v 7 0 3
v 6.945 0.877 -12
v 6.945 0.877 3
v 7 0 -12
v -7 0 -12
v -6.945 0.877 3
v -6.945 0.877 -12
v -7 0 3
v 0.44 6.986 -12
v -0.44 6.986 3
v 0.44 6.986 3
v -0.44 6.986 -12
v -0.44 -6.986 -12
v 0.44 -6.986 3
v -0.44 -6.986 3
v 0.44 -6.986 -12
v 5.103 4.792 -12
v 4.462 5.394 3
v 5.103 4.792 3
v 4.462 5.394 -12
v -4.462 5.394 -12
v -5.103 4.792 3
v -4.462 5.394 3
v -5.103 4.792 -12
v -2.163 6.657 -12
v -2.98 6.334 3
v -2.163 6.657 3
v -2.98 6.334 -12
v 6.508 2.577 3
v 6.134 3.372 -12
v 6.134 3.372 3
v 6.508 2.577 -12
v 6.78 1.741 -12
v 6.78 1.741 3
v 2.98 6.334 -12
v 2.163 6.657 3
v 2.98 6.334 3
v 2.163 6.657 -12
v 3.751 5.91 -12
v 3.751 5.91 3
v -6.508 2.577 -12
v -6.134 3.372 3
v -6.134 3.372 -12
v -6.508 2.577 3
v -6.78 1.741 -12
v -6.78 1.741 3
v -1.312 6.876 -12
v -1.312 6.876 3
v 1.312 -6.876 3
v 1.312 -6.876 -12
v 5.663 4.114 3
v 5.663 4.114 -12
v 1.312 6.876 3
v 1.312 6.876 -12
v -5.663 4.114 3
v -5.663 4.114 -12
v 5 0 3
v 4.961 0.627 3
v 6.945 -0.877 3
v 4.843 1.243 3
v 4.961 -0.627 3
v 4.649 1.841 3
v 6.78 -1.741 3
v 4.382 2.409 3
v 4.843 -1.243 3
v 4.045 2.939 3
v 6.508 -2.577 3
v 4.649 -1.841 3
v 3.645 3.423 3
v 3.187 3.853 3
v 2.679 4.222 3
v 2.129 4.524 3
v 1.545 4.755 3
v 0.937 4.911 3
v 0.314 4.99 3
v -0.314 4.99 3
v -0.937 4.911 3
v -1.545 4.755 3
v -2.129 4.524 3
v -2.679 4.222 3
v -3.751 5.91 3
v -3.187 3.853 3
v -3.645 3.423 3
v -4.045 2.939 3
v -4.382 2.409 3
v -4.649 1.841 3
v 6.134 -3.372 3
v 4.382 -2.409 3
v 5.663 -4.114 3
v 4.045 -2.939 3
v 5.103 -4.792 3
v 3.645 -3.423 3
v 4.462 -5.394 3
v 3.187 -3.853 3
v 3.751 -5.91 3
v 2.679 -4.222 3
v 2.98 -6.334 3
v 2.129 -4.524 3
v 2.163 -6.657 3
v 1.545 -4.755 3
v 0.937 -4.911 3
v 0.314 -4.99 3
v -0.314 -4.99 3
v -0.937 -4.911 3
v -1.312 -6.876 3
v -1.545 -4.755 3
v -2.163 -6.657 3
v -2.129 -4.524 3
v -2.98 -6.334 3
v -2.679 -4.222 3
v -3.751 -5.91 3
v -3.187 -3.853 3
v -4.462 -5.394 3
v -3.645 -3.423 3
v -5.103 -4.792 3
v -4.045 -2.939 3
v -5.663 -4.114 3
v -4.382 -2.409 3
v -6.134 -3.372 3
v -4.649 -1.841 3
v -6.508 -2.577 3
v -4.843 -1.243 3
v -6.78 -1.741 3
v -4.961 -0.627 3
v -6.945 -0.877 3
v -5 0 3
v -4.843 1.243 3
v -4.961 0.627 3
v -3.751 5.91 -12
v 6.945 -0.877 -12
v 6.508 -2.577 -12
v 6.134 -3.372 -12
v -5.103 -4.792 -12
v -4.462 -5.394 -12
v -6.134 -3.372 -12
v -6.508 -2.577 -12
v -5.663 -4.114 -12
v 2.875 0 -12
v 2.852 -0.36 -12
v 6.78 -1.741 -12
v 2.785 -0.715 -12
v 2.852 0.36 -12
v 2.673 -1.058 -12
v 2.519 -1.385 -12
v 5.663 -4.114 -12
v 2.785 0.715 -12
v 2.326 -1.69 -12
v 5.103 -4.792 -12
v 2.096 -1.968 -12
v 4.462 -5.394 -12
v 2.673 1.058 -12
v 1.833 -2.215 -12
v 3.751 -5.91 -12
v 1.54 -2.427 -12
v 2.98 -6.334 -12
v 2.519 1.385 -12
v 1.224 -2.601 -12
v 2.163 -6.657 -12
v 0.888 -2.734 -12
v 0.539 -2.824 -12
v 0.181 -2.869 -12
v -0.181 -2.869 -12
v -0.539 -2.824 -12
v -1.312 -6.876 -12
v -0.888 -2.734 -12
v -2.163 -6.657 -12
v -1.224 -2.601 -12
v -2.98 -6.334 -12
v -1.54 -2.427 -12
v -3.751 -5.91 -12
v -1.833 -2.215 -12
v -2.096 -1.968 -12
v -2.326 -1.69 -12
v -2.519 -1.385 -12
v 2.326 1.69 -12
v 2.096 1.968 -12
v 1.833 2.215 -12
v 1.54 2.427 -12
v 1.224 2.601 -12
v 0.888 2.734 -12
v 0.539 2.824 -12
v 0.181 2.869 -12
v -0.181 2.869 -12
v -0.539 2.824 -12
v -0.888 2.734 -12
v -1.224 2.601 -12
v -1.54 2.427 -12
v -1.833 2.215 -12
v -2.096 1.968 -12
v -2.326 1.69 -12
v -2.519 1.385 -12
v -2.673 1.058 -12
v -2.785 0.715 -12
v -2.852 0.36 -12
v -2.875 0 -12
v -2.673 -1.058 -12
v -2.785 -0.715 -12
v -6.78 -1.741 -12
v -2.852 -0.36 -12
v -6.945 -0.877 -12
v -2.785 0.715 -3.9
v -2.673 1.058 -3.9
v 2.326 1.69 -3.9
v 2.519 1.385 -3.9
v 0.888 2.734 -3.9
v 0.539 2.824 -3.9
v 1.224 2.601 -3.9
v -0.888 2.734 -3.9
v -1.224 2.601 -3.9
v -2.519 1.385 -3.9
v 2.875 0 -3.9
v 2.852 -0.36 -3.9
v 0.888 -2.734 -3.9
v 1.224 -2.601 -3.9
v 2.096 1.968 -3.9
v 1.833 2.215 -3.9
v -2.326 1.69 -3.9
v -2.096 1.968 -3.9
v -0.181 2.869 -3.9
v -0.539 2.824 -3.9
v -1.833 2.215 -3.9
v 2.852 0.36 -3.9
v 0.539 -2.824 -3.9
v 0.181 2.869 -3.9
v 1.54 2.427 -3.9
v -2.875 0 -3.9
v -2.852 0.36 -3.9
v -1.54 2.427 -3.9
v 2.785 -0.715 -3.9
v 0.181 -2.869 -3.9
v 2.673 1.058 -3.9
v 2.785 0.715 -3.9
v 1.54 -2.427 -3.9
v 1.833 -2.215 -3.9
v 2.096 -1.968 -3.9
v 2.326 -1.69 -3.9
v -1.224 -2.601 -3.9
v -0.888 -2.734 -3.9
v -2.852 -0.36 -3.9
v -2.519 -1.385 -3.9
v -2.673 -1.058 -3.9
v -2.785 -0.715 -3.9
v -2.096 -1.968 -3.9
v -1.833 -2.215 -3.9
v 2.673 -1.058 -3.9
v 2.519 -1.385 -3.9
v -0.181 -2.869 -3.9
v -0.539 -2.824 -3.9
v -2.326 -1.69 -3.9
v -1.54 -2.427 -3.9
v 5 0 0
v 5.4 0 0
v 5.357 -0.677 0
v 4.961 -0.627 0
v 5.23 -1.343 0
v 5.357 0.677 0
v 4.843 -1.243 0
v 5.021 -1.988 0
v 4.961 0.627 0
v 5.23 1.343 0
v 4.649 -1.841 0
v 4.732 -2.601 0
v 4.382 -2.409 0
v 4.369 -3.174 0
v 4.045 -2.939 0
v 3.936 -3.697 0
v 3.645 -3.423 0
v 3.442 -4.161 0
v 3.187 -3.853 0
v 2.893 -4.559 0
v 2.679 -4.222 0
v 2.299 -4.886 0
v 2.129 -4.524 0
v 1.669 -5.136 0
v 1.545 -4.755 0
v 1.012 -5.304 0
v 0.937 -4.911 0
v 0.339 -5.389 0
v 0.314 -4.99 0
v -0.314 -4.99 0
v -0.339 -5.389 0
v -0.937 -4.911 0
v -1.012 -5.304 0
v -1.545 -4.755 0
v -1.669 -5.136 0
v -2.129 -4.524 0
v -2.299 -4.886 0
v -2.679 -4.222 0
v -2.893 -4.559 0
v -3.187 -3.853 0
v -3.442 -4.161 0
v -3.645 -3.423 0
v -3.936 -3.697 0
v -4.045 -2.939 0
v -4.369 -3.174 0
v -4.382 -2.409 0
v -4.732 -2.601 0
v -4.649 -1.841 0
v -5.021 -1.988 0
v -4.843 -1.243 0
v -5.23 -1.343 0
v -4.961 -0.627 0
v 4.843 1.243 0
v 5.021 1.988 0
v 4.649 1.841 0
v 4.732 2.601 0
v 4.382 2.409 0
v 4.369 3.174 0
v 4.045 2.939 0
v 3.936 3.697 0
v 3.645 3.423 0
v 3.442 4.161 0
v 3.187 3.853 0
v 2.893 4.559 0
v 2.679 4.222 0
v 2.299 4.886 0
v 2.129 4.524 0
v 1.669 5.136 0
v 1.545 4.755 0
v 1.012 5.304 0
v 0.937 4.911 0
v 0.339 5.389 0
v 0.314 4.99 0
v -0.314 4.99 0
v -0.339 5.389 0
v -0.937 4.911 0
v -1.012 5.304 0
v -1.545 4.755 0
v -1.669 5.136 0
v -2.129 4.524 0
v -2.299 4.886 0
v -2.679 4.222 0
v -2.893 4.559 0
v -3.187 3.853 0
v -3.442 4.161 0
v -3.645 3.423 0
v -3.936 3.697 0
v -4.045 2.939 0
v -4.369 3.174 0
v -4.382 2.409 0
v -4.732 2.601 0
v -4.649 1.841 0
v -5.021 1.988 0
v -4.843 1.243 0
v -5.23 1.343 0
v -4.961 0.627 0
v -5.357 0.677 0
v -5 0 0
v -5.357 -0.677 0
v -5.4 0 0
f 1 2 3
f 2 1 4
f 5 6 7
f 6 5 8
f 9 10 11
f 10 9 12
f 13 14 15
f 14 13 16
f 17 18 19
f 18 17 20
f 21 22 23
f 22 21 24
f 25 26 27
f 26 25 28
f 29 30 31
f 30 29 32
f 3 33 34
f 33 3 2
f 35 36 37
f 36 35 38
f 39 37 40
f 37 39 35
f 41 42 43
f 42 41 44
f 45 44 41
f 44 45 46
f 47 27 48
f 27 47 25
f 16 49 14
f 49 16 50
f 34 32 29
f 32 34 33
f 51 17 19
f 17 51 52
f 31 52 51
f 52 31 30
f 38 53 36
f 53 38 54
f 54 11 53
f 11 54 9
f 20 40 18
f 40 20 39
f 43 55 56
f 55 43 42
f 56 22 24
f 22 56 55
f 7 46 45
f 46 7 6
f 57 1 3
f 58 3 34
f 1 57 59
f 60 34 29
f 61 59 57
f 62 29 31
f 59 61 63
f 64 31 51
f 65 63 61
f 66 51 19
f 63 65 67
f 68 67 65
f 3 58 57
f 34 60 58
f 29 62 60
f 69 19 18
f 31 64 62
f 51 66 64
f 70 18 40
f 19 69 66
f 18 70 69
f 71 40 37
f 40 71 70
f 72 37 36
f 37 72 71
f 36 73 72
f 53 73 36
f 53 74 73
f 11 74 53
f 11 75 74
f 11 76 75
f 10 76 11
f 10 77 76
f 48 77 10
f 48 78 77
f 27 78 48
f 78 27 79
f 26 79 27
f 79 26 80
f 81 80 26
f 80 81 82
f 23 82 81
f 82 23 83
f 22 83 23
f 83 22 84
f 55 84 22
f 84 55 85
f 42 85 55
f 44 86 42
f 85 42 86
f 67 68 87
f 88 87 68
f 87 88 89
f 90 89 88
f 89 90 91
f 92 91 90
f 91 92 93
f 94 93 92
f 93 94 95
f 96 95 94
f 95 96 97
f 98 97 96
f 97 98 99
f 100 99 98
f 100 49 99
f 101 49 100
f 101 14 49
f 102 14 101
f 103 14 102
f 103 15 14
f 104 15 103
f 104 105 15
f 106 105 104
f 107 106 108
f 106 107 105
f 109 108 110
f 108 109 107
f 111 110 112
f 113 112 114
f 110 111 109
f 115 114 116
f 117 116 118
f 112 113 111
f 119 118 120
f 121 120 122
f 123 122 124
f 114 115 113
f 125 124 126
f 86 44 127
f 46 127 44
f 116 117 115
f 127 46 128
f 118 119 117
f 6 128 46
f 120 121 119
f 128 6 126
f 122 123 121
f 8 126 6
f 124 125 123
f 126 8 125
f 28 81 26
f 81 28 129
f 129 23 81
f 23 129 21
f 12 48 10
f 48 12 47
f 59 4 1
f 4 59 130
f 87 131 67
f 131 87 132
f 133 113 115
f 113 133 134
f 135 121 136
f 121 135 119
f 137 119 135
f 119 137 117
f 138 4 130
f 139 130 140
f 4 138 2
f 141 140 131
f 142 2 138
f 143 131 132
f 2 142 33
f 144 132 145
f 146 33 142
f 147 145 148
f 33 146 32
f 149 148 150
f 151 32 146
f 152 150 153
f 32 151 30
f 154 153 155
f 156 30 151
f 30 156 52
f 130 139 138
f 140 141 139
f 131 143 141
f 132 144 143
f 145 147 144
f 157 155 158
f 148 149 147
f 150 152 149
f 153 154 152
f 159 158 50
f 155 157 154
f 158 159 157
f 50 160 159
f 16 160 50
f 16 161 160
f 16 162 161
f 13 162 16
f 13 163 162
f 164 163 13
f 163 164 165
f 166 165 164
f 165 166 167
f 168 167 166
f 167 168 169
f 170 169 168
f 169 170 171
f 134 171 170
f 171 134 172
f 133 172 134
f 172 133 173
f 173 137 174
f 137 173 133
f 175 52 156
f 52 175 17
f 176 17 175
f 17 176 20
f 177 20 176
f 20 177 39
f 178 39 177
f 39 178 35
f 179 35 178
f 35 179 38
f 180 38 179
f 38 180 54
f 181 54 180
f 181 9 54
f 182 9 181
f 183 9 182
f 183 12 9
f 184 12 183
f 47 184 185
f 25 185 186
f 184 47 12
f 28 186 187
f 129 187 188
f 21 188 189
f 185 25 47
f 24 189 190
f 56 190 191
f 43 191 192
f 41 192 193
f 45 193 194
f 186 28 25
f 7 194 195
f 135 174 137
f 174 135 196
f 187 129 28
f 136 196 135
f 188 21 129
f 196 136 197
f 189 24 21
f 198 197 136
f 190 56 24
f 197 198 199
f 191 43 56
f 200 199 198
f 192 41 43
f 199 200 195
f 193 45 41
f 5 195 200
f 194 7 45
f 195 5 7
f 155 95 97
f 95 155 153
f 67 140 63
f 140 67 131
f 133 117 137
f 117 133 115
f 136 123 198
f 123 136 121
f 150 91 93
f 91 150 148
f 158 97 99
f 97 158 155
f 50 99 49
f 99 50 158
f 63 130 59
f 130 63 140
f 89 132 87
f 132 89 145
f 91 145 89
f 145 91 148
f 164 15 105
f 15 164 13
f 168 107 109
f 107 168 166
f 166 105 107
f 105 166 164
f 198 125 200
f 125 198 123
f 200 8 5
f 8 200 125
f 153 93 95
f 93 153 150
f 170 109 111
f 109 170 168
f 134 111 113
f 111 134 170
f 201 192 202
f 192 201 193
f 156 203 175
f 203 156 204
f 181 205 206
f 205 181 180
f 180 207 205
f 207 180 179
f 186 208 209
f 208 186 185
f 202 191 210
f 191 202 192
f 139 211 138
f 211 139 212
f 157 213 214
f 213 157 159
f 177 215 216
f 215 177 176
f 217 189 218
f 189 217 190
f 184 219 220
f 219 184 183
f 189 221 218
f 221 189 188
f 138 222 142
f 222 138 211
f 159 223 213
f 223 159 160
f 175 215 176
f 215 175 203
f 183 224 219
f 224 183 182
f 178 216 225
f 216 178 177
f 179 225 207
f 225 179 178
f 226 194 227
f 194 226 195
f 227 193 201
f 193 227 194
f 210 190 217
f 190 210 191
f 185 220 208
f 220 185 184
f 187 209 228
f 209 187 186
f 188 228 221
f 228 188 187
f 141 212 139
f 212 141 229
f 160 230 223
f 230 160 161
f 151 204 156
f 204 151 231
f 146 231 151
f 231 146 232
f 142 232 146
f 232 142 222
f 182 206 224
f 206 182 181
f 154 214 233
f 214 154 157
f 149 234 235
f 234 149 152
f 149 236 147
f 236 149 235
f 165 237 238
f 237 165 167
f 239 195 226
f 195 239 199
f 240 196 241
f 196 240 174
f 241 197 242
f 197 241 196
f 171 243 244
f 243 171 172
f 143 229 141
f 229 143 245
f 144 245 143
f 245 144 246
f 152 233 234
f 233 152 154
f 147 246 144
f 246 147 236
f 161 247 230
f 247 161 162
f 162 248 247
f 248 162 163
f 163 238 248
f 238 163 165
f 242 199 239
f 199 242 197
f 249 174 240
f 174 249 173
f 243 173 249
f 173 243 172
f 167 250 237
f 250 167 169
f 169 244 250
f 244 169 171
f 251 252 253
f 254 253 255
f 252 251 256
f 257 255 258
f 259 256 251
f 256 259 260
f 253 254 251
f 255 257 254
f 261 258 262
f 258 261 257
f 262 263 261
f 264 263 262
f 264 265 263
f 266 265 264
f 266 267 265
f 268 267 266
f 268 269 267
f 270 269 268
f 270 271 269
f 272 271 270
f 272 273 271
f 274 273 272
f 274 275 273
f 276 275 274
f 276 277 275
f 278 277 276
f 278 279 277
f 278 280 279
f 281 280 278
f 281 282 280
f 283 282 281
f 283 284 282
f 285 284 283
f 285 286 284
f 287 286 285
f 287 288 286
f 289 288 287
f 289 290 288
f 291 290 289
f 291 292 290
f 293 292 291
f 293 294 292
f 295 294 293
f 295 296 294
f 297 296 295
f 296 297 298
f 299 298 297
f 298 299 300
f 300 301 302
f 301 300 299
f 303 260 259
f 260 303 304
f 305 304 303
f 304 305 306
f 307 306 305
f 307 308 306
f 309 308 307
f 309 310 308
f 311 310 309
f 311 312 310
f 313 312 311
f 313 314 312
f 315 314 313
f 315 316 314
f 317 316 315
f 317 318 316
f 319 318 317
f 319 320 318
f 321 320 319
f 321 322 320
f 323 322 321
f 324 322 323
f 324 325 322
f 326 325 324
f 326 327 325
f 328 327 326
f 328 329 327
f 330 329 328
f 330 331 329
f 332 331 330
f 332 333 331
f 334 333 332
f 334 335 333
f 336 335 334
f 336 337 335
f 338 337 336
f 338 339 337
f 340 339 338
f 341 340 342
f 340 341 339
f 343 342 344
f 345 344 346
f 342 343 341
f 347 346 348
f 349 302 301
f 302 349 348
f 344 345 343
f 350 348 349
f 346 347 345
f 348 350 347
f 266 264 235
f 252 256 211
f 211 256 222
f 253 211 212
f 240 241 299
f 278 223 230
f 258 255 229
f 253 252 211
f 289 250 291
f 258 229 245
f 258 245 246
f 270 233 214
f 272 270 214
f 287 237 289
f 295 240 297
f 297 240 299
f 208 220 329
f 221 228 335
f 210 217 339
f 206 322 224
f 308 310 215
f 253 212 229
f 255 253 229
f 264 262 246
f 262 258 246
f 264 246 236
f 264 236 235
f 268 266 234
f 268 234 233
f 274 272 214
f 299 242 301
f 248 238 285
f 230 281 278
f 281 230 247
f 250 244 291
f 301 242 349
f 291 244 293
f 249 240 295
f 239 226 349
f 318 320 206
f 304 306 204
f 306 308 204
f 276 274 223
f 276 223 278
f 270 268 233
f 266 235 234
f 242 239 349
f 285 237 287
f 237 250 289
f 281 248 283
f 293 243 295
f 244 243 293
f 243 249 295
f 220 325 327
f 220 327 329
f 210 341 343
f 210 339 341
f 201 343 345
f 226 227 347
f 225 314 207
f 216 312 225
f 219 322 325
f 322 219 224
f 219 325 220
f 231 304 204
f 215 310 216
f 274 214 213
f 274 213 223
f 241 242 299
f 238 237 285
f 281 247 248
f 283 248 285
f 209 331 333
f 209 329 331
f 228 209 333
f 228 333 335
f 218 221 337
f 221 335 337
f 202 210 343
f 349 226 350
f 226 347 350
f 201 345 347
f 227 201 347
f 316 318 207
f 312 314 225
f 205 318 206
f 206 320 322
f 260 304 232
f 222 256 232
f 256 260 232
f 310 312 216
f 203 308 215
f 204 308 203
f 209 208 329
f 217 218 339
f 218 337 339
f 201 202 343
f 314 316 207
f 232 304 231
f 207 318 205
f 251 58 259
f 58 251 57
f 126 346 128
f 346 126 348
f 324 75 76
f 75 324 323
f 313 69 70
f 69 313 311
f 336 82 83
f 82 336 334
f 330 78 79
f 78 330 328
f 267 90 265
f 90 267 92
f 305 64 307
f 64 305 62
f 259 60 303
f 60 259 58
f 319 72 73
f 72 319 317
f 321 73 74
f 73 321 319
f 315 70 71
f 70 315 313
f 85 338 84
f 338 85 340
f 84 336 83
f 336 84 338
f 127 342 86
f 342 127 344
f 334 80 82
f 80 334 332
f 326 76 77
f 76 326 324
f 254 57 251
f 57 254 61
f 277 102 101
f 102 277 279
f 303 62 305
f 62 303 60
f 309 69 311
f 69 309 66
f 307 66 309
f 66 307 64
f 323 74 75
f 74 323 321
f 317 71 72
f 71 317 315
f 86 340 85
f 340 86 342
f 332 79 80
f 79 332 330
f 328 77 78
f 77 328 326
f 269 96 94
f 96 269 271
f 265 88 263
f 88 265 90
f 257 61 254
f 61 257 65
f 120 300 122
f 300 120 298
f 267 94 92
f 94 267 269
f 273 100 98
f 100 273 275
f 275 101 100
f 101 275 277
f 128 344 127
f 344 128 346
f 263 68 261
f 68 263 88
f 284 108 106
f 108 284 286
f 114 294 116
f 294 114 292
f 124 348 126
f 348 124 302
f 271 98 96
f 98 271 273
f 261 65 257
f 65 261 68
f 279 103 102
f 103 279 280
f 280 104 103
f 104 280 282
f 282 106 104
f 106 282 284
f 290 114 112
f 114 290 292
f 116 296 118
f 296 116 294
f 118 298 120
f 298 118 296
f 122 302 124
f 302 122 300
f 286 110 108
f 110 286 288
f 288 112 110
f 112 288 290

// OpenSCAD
$fn = 50;


difference() {
	union() {
		translate(v = [0, 0, -12.0000000000]) {
			cylinder(h = 15, r = 7.0000000000);
		}
		#translate(v = [0, 0, -15.0000000000]) {
			cylinder(h = 15, r = 2.8750000000);
		}
	}
	union() {
		translate(v = [0, 0, 0]) {
			rotate(a = [0, 0, 0]) {
				difference() {
					union() {
						translate(v = [0, 0, -15.0000000000]) {
							cylinder(h = 15, r = 2.6000000000);
						}
						translate(v = [0, 0, -3.9000000000]) {
							cylinder(h = 3.9000000000, r1 = 2.8750000000, r2 = 5.4000000000);
						}
						translate(v = [0, 0, -15.0000000000]) {
							cylinder(h = 15, r = 2.8750000000);
						}
						translate(v = [0, 0, -15.0000000000]) {
							cylinder(h = 15, r = 2.6000000000);
						}
					}
					union();
				}
			}
		}
		#cylinder(h = 3, r = 5.0000000000);
	}
}
